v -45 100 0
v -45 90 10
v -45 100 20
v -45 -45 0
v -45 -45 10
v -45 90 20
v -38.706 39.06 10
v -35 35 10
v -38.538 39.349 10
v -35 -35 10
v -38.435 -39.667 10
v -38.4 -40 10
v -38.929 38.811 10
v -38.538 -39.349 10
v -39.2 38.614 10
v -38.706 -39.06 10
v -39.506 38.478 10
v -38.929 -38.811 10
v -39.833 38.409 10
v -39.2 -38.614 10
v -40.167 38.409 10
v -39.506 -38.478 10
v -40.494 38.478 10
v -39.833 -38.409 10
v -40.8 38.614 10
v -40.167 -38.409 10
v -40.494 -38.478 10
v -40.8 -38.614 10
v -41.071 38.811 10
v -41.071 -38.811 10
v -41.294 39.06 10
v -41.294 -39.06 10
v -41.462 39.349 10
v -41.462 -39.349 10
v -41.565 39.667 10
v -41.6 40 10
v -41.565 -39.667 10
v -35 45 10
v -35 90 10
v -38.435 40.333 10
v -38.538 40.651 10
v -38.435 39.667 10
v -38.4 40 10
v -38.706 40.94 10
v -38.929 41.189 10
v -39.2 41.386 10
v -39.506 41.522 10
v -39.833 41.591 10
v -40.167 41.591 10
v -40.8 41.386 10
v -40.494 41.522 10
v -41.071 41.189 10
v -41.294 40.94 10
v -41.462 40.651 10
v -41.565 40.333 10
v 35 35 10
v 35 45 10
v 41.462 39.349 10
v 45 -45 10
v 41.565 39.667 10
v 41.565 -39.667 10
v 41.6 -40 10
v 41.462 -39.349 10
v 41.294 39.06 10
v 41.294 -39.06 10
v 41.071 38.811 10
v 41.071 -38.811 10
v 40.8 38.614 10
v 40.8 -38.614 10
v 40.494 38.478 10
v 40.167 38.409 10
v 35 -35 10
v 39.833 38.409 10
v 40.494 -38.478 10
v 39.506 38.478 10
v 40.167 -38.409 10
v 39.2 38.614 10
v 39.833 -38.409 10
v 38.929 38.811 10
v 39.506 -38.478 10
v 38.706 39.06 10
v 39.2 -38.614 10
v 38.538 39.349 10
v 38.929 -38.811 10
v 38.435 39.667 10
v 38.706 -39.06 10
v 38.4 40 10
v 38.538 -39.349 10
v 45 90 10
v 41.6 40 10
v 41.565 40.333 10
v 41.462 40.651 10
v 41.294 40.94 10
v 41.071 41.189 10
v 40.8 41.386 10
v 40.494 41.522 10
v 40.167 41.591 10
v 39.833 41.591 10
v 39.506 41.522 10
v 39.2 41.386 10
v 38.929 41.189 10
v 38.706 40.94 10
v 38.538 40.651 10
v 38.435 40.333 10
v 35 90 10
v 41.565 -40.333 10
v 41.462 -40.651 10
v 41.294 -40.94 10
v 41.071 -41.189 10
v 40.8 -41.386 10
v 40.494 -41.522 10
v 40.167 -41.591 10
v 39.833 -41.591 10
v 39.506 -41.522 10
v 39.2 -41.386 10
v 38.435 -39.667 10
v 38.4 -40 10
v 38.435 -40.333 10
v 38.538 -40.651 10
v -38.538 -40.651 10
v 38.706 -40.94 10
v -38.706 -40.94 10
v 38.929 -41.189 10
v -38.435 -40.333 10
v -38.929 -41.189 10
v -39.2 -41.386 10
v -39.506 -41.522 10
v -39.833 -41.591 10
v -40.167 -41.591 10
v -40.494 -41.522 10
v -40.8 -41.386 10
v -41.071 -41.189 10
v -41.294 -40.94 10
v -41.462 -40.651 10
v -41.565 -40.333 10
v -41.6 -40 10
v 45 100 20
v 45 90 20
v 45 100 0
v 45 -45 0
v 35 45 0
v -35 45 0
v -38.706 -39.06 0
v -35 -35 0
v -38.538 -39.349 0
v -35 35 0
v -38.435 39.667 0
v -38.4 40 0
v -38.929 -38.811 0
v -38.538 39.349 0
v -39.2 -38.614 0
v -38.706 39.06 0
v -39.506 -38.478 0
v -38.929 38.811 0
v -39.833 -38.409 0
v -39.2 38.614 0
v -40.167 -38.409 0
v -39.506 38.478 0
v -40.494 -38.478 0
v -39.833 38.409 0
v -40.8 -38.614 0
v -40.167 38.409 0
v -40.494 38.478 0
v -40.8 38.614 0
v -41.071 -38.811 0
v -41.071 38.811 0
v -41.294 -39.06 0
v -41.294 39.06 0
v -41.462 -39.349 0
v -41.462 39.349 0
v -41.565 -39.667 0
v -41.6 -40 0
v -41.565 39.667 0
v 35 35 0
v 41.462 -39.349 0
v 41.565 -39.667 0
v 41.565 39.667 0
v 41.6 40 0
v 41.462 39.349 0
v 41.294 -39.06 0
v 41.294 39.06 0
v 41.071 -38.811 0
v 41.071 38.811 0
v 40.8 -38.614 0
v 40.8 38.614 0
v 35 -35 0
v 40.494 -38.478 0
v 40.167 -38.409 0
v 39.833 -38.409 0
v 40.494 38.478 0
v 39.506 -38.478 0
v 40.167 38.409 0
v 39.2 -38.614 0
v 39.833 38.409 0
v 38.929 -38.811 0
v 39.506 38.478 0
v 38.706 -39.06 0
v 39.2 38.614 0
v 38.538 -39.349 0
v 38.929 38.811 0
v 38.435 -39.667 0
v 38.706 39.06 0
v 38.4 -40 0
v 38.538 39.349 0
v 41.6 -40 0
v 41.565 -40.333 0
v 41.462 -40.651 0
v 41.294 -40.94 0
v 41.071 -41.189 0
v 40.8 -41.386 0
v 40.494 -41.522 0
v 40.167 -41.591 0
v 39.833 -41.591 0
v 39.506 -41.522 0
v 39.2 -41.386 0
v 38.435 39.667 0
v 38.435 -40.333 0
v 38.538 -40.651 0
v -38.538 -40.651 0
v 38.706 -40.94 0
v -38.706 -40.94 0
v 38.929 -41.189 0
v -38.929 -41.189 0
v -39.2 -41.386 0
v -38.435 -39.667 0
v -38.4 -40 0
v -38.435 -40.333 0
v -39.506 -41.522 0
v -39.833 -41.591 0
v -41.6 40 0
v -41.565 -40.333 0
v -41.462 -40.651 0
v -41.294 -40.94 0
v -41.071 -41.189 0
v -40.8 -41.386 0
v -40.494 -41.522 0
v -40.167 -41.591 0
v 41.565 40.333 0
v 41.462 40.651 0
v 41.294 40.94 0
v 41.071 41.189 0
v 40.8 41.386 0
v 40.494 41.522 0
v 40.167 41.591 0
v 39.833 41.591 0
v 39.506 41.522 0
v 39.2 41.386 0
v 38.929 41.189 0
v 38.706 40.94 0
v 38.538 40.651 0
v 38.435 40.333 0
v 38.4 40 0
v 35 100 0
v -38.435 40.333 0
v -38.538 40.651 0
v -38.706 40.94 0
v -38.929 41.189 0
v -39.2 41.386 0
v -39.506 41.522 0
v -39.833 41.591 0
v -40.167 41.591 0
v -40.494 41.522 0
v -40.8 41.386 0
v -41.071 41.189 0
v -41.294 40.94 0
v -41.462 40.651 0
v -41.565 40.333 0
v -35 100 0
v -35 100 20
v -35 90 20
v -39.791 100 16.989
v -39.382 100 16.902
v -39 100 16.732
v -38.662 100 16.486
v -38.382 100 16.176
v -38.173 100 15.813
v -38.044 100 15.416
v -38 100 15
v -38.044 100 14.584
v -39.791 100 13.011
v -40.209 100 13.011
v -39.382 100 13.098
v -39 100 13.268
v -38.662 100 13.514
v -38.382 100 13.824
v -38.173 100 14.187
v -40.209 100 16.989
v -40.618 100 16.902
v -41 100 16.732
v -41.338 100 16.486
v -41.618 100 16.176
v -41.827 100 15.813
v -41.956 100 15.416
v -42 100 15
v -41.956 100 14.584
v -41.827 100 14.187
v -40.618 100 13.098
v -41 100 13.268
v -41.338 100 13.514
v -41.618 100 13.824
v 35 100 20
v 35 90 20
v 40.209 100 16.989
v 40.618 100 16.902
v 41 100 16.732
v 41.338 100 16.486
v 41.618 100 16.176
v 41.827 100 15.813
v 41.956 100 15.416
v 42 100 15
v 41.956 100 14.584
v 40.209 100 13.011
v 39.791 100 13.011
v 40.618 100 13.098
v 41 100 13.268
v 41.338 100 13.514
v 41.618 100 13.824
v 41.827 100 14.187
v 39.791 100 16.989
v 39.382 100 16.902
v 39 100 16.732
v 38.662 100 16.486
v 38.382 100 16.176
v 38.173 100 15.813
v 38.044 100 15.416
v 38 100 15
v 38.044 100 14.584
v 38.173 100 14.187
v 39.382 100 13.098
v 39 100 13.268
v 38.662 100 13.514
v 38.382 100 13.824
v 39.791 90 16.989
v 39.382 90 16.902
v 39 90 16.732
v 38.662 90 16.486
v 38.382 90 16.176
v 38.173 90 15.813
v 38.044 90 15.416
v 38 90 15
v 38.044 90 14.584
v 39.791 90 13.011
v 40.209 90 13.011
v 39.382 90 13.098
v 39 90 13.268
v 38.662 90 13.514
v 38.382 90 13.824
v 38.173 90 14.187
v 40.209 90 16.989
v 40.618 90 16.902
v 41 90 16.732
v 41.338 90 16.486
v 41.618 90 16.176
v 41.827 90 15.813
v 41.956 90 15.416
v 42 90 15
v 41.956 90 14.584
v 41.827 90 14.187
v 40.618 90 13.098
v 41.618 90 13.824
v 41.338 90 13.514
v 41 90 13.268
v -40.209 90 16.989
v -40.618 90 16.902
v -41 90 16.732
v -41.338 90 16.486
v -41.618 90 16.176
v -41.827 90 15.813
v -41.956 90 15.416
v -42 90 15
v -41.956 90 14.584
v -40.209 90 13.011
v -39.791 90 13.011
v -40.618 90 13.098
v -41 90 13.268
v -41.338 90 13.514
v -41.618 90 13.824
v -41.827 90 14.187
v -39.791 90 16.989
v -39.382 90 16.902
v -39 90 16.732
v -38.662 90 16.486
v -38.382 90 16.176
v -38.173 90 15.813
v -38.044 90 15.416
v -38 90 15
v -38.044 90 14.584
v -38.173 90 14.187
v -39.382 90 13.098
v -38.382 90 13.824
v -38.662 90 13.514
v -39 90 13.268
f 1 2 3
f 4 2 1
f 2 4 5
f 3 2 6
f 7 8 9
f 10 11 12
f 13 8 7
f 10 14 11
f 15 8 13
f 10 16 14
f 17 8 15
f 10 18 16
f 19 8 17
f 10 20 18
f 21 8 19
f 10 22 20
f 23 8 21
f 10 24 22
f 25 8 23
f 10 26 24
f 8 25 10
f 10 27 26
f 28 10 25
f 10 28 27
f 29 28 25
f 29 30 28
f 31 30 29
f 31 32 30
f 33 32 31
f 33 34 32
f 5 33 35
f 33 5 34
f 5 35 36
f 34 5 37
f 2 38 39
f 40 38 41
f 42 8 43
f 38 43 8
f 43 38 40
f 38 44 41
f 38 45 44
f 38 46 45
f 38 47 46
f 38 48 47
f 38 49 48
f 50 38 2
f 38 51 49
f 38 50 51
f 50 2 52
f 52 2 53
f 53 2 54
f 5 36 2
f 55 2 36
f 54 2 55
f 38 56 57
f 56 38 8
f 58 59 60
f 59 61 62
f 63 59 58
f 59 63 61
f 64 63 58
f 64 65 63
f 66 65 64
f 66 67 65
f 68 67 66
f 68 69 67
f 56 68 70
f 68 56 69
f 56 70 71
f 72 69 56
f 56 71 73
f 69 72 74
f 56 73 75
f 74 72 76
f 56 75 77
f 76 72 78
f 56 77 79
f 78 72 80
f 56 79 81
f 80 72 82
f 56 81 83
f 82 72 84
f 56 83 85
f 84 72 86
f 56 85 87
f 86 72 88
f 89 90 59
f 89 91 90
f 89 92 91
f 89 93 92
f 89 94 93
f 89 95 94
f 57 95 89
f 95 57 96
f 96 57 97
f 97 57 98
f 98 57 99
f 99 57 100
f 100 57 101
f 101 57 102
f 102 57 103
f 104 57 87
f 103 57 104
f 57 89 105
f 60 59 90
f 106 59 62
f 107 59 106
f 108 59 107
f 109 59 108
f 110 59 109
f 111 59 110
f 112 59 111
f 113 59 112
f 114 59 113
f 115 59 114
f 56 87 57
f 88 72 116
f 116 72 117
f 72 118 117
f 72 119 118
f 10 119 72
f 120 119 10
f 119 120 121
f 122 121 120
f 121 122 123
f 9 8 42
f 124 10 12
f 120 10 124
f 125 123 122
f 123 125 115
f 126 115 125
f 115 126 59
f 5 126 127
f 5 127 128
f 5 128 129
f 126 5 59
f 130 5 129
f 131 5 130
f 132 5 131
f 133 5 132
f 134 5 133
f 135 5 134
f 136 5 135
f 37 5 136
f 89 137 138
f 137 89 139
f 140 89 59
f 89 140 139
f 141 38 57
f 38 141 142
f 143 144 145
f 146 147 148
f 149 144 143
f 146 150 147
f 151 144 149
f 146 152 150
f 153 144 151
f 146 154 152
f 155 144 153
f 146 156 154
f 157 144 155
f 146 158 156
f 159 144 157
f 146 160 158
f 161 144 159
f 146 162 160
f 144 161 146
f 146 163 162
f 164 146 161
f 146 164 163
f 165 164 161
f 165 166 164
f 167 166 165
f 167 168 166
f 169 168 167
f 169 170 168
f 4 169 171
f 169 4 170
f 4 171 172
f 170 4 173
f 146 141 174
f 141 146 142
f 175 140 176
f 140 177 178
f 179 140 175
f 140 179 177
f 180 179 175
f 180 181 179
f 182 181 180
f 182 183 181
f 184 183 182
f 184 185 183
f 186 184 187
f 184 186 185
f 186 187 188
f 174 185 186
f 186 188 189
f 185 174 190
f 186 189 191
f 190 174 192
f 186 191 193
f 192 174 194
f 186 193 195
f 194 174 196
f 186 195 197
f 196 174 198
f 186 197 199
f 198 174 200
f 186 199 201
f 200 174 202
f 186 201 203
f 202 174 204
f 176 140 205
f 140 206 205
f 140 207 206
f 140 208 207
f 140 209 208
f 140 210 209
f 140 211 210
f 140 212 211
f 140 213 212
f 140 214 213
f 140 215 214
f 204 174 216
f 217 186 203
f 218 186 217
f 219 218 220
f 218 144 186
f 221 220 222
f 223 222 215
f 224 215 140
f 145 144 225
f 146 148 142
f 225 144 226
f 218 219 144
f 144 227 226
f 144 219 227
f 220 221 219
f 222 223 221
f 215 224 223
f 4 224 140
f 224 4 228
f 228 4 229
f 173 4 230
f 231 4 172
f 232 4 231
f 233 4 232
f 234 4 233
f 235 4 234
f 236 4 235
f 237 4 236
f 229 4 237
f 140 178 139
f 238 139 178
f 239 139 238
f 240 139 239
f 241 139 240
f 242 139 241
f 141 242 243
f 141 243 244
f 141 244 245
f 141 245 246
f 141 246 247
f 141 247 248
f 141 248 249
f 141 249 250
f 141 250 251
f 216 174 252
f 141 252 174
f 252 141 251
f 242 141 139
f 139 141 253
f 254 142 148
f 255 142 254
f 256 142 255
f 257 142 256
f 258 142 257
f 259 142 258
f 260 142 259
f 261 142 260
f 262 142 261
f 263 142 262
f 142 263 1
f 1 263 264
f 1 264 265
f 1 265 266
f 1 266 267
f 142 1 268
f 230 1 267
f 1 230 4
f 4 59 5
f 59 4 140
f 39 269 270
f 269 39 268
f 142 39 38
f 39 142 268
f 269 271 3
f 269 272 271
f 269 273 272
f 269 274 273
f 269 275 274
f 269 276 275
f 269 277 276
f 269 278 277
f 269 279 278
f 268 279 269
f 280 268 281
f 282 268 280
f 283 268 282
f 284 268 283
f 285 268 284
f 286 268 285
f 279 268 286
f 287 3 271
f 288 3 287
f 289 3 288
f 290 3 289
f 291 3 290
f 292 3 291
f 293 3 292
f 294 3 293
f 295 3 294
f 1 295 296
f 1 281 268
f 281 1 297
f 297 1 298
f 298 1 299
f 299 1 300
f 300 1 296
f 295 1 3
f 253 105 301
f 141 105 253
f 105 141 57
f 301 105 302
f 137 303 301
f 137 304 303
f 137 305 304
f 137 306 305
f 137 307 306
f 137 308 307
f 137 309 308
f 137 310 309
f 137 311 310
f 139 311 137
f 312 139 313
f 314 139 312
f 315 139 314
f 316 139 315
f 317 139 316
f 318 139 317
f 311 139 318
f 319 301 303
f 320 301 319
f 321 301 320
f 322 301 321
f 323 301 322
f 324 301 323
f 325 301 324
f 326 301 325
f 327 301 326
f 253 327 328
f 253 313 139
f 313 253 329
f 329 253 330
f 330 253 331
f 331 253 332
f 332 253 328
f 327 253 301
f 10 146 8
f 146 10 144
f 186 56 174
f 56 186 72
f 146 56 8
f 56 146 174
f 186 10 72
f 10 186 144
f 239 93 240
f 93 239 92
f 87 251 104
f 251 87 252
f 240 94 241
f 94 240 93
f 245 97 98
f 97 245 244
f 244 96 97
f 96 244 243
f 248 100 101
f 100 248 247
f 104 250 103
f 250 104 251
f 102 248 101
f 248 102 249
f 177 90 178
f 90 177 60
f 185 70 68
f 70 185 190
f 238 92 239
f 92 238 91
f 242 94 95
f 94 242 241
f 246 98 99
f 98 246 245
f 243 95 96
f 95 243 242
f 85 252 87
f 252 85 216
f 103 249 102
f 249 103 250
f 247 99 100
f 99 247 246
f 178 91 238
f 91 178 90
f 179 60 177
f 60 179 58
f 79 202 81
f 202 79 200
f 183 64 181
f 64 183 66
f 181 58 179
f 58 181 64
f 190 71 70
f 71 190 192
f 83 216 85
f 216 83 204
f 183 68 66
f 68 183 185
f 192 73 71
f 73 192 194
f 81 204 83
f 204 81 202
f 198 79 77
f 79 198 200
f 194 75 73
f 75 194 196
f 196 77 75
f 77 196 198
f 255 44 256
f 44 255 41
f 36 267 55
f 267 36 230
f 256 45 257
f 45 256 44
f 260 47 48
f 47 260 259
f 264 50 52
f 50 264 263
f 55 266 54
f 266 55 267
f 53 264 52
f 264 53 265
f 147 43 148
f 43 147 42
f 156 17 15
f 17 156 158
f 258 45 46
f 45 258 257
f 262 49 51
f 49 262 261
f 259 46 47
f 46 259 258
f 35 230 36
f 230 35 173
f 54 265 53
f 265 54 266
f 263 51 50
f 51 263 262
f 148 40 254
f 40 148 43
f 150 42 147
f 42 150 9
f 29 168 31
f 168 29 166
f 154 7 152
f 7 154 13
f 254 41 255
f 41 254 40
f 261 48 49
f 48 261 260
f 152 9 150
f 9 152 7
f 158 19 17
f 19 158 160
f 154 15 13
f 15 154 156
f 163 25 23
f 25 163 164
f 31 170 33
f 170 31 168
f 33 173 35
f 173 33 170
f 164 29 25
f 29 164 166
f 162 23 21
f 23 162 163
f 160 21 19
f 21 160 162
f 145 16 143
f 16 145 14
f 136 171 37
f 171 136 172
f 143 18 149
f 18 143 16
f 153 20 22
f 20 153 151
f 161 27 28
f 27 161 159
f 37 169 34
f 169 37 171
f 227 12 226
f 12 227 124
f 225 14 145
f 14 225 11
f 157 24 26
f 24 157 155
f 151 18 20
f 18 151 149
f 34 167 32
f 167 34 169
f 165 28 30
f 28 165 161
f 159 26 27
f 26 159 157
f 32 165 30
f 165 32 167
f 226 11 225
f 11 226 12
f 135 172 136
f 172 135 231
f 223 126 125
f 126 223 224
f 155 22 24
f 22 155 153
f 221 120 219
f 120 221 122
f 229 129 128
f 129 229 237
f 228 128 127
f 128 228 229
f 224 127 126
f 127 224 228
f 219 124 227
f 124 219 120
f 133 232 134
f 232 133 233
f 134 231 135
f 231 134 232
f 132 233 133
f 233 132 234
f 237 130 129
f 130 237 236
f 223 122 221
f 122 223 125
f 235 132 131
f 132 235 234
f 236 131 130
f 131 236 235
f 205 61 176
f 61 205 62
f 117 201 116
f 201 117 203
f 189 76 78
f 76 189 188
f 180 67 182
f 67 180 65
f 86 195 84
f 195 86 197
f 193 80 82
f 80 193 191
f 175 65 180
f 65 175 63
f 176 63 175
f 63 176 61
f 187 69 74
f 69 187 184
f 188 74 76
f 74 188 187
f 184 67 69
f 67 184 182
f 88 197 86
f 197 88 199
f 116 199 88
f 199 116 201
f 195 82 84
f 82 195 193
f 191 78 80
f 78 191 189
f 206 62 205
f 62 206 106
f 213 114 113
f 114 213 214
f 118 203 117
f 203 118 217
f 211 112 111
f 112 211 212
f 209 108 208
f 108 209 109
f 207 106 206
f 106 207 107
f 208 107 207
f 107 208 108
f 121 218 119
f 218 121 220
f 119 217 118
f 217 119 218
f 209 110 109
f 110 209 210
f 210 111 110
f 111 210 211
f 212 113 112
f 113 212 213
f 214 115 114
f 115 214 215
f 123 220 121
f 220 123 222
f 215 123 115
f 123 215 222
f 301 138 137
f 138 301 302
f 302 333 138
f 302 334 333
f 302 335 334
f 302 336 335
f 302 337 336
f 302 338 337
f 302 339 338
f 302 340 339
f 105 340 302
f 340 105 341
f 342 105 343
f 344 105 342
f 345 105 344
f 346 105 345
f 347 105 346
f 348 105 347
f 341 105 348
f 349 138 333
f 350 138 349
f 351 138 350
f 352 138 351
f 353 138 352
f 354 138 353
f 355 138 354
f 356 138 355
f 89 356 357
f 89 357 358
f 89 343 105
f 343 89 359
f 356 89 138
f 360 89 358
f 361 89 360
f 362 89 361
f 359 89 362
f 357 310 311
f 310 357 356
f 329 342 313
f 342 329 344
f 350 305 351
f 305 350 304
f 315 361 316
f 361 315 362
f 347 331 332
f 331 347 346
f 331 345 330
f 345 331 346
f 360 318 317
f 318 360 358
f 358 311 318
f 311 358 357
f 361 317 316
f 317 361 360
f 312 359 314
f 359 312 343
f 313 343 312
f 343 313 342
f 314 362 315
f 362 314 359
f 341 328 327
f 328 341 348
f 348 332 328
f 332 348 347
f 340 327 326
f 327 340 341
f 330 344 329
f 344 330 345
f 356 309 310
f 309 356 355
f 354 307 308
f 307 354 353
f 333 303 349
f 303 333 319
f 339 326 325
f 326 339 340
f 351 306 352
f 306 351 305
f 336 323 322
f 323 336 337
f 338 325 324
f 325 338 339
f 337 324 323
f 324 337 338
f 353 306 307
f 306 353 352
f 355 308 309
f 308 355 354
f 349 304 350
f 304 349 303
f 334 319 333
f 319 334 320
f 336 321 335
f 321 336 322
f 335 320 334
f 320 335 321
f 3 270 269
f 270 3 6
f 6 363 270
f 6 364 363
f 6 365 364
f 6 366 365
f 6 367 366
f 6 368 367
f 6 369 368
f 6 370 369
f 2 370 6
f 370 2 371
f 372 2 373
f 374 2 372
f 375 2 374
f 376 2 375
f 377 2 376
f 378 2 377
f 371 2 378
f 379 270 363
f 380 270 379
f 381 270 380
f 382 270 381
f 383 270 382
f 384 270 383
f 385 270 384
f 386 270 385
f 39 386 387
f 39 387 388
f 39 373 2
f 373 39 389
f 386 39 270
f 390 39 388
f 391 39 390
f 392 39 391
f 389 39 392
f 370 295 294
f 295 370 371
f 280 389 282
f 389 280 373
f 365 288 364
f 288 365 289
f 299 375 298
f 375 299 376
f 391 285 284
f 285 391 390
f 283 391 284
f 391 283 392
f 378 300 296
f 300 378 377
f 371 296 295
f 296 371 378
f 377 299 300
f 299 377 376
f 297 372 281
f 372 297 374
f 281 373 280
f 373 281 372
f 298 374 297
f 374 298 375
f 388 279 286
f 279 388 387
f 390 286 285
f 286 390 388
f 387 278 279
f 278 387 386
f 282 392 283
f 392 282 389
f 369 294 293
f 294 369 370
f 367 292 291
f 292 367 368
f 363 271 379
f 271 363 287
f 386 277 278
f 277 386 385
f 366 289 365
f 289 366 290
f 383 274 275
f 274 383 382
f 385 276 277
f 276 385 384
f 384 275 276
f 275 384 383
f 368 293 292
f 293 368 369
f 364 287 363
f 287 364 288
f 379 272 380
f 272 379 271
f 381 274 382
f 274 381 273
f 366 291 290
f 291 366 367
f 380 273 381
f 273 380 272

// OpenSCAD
$fn=30;
difference(){
union(){
translate([-45,-45,0])cube([90,90,10]);
translate([-45,15,0])cube([10,85,10]);
translate([35,15,0])cube([10,85,10]);
}
translate([-35,-35,-1])cube([70,70,12]);
translate([40,40,-1])cylinder(d=3.2,h=12);
translate([-40,40,-1])cylinder(d=3.2,h=12);
translate([-40,-40,-1])cylinder(d=3.2,h=12);
translate([40,-40,-1])cylinder(d=3.2,h=12);
}
difference(){
translate([35,90,0])cube([10,10,20]);
translate([40,90,15])rotate([-90,0,0])
cylinder(d=4,h=100);
}
mirror([1,0,0])
difference(){
translate([35,90,0])cube([10,10,20]);
translate([40,90,15])rotate([-90,0,0])
cylinder(d=4,h=100);
}
